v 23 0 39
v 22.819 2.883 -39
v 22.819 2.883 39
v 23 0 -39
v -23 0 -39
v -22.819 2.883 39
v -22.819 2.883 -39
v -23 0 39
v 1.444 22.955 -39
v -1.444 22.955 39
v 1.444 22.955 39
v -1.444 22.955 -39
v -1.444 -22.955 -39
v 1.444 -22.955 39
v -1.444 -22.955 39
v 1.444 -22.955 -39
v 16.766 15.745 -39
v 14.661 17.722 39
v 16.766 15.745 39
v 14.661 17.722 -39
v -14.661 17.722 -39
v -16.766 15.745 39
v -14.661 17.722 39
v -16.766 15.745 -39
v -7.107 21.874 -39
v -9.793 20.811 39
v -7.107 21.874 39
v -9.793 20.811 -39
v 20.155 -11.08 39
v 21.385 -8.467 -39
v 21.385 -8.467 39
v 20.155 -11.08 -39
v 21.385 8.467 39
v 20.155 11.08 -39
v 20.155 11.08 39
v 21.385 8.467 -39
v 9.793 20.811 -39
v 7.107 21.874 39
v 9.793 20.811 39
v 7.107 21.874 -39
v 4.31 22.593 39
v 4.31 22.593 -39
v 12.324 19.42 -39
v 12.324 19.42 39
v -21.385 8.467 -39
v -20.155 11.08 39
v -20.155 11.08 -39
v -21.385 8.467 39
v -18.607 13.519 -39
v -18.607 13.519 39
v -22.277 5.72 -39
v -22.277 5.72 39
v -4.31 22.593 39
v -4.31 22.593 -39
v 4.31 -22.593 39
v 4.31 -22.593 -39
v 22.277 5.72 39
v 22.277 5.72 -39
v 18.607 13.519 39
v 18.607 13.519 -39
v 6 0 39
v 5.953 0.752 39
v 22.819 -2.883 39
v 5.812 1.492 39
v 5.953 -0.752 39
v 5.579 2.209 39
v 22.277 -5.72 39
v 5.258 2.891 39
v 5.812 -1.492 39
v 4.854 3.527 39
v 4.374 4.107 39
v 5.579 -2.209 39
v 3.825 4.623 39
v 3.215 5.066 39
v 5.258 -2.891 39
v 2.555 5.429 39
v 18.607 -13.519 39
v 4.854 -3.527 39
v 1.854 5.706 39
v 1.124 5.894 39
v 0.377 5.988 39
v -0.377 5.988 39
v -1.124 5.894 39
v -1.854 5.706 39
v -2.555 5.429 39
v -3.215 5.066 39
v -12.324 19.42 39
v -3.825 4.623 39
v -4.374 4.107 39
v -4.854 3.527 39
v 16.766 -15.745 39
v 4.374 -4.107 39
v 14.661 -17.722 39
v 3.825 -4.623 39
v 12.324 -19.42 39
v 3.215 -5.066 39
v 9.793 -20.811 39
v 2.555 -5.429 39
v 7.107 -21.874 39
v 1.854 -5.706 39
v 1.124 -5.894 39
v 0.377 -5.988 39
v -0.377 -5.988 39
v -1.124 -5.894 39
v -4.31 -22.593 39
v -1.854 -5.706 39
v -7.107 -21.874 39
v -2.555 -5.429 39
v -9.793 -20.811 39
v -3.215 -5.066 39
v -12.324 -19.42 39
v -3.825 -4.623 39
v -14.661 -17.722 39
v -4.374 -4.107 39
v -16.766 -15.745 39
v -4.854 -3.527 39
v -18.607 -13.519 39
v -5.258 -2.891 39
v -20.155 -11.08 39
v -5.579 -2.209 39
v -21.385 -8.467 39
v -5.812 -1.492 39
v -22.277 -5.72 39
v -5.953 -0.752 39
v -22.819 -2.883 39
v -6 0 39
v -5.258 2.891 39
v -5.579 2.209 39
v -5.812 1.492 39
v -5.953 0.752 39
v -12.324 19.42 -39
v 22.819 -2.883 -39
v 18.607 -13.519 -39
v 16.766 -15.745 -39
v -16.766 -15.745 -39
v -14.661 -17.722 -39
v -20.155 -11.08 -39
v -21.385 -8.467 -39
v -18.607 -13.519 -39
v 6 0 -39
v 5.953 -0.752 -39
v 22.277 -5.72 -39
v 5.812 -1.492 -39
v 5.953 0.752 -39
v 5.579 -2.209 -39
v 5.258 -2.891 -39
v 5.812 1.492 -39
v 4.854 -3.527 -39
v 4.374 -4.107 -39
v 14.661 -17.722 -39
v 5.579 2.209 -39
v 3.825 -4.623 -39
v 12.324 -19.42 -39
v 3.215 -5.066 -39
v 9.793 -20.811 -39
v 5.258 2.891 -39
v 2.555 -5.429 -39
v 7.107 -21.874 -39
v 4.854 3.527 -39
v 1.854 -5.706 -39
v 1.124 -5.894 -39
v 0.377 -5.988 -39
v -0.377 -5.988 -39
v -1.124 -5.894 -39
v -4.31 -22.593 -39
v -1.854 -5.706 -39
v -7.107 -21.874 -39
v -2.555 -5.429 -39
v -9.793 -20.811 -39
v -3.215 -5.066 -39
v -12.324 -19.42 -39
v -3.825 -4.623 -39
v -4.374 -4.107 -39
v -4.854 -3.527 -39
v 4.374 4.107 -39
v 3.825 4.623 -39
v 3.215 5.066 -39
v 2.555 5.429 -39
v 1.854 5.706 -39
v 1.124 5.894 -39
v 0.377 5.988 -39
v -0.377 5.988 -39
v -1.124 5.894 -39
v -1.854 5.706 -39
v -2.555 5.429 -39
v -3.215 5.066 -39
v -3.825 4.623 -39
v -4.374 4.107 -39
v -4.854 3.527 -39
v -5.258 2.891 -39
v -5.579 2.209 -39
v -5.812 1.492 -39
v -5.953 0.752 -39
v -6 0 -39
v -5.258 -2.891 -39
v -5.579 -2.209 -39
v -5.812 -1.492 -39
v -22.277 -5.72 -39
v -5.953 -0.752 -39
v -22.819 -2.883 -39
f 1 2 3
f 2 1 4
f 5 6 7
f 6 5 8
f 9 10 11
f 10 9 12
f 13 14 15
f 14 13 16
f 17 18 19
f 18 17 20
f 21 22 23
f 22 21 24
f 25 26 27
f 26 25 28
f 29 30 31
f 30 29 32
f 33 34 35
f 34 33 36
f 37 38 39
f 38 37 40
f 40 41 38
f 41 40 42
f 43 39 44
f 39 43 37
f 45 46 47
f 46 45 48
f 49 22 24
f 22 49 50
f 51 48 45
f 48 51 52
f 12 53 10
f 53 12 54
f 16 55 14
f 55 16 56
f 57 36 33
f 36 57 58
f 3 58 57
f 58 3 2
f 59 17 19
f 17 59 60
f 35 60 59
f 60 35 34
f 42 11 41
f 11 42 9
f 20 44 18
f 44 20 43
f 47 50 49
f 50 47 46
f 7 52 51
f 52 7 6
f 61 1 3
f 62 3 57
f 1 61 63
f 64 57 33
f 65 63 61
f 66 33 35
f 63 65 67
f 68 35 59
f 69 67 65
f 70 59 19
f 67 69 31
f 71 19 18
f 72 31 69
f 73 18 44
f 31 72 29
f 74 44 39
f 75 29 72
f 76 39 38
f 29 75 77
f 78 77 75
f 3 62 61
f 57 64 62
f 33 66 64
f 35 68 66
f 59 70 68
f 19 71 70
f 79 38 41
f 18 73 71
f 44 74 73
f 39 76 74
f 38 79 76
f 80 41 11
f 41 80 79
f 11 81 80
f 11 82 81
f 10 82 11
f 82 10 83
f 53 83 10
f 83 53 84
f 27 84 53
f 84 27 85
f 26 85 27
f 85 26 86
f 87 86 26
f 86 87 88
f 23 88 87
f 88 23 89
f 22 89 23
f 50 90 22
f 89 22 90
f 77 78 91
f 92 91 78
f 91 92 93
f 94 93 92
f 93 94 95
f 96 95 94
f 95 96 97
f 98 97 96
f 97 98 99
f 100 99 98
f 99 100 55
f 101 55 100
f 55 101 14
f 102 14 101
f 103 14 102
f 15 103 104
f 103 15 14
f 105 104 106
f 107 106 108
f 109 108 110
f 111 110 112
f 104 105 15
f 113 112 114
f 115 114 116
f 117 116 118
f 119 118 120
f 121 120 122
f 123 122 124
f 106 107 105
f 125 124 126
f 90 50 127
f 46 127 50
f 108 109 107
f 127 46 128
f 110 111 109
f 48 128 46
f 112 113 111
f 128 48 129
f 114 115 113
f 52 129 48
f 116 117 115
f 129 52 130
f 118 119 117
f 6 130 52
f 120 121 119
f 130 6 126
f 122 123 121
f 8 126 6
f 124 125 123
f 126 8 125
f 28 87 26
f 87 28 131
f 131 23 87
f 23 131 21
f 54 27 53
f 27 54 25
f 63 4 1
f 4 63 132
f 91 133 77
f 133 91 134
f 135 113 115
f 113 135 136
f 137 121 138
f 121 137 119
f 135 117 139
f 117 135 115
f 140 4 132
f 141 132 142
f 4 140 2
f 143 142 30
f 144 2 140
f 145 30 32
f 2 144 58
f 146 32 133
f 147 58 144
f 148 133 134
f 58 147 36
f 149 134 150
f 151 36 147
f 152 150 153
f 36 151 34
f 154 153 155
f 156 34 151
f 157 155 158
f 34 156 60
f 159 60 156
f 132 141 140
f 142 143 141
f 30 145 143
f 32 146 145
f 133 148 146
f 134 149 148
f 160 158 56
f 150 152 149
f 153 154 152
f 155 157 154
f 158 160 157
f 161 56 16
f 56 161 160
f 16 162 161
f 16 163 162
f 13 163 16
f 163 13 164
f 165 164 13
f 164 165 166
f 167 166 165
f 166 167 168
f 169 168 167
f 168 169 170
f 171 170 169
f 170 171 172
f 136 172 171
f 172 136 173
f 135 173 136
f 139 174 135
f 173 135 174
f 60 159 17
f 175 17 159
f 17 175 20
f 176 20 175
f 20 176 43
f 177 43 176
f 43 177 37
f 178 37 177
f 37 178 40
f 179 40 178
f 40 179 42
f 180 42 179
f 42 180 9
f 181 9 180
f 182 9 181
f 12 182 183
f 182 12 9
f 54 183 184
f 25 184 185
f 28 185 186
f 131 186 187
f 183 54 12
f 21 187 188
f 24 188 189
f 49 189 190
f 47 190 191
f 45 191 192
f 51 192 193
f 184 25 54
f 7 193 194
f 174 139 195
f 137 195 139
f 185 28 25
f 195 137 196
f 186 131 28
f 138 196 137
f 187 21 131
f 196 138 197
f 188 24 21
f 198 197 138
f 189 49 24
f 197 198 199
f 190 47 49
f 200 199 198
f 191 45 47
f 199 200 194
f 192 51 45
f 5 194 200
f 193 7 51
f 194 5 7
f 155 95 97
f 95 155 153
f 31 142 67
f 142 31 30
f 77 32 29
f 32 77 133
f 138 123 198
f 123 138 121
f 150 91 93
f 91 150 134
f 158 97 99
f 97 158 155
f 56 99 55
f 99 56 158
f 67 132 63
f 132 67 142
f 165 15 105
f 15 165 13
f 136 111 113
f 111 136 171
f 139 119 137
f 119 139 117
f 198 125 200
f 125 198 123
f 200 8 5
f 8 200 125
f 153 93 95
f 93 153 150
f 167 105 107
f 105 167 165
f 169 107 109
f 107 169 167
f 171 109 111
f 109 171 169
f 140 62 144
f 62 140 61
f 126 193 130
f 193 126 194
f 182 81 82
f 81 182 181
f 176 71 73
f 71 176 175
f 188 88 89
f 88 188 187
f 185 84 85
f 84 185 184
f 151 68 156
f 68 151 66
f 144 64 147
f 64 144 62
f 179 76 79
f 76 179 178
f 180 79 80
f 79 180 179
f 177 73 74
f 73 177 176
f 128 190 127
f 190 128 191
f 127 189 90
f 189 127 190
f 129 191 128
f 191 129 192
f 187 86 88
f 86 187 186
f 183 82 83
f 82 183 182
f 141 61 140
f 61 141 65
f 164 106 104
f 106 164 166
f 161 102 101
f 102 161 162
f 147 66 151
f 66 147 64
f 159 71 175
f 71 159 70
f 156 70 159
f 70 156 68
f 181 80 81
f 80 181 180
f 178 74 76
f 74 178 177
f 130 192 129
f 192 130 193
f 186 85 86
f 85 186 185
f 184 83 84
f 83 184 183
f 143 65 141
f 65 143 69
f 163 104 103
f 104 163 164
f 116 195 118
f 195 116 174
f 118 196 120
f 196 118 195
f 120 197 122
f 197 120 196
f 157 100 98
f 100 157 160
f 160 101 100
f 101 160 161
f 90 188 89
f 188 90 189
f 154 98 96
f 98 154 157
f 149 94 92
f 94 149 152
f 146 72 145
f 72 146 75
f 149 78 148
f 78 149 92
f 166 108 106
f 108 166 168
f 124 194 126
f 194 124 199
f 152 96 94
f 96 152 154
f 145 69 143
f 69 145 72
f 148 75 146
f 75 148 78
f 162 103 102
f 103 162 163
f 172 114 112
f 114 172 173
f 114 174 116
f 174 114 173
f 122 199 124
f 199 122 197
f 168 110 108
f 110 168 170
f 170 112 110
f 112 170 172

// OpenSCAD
$fn = 50;


difference() {
	union() {
		translate(v = [0, 0, -39.0000000000]) {
			cylinder(h = 78, r = 23.0000000000);
		}
	}
	union() {
		translate(v = [0, 0, -100.0000000000]) {
			cylinder(h = 200, r = 6);
		}
	}
}
